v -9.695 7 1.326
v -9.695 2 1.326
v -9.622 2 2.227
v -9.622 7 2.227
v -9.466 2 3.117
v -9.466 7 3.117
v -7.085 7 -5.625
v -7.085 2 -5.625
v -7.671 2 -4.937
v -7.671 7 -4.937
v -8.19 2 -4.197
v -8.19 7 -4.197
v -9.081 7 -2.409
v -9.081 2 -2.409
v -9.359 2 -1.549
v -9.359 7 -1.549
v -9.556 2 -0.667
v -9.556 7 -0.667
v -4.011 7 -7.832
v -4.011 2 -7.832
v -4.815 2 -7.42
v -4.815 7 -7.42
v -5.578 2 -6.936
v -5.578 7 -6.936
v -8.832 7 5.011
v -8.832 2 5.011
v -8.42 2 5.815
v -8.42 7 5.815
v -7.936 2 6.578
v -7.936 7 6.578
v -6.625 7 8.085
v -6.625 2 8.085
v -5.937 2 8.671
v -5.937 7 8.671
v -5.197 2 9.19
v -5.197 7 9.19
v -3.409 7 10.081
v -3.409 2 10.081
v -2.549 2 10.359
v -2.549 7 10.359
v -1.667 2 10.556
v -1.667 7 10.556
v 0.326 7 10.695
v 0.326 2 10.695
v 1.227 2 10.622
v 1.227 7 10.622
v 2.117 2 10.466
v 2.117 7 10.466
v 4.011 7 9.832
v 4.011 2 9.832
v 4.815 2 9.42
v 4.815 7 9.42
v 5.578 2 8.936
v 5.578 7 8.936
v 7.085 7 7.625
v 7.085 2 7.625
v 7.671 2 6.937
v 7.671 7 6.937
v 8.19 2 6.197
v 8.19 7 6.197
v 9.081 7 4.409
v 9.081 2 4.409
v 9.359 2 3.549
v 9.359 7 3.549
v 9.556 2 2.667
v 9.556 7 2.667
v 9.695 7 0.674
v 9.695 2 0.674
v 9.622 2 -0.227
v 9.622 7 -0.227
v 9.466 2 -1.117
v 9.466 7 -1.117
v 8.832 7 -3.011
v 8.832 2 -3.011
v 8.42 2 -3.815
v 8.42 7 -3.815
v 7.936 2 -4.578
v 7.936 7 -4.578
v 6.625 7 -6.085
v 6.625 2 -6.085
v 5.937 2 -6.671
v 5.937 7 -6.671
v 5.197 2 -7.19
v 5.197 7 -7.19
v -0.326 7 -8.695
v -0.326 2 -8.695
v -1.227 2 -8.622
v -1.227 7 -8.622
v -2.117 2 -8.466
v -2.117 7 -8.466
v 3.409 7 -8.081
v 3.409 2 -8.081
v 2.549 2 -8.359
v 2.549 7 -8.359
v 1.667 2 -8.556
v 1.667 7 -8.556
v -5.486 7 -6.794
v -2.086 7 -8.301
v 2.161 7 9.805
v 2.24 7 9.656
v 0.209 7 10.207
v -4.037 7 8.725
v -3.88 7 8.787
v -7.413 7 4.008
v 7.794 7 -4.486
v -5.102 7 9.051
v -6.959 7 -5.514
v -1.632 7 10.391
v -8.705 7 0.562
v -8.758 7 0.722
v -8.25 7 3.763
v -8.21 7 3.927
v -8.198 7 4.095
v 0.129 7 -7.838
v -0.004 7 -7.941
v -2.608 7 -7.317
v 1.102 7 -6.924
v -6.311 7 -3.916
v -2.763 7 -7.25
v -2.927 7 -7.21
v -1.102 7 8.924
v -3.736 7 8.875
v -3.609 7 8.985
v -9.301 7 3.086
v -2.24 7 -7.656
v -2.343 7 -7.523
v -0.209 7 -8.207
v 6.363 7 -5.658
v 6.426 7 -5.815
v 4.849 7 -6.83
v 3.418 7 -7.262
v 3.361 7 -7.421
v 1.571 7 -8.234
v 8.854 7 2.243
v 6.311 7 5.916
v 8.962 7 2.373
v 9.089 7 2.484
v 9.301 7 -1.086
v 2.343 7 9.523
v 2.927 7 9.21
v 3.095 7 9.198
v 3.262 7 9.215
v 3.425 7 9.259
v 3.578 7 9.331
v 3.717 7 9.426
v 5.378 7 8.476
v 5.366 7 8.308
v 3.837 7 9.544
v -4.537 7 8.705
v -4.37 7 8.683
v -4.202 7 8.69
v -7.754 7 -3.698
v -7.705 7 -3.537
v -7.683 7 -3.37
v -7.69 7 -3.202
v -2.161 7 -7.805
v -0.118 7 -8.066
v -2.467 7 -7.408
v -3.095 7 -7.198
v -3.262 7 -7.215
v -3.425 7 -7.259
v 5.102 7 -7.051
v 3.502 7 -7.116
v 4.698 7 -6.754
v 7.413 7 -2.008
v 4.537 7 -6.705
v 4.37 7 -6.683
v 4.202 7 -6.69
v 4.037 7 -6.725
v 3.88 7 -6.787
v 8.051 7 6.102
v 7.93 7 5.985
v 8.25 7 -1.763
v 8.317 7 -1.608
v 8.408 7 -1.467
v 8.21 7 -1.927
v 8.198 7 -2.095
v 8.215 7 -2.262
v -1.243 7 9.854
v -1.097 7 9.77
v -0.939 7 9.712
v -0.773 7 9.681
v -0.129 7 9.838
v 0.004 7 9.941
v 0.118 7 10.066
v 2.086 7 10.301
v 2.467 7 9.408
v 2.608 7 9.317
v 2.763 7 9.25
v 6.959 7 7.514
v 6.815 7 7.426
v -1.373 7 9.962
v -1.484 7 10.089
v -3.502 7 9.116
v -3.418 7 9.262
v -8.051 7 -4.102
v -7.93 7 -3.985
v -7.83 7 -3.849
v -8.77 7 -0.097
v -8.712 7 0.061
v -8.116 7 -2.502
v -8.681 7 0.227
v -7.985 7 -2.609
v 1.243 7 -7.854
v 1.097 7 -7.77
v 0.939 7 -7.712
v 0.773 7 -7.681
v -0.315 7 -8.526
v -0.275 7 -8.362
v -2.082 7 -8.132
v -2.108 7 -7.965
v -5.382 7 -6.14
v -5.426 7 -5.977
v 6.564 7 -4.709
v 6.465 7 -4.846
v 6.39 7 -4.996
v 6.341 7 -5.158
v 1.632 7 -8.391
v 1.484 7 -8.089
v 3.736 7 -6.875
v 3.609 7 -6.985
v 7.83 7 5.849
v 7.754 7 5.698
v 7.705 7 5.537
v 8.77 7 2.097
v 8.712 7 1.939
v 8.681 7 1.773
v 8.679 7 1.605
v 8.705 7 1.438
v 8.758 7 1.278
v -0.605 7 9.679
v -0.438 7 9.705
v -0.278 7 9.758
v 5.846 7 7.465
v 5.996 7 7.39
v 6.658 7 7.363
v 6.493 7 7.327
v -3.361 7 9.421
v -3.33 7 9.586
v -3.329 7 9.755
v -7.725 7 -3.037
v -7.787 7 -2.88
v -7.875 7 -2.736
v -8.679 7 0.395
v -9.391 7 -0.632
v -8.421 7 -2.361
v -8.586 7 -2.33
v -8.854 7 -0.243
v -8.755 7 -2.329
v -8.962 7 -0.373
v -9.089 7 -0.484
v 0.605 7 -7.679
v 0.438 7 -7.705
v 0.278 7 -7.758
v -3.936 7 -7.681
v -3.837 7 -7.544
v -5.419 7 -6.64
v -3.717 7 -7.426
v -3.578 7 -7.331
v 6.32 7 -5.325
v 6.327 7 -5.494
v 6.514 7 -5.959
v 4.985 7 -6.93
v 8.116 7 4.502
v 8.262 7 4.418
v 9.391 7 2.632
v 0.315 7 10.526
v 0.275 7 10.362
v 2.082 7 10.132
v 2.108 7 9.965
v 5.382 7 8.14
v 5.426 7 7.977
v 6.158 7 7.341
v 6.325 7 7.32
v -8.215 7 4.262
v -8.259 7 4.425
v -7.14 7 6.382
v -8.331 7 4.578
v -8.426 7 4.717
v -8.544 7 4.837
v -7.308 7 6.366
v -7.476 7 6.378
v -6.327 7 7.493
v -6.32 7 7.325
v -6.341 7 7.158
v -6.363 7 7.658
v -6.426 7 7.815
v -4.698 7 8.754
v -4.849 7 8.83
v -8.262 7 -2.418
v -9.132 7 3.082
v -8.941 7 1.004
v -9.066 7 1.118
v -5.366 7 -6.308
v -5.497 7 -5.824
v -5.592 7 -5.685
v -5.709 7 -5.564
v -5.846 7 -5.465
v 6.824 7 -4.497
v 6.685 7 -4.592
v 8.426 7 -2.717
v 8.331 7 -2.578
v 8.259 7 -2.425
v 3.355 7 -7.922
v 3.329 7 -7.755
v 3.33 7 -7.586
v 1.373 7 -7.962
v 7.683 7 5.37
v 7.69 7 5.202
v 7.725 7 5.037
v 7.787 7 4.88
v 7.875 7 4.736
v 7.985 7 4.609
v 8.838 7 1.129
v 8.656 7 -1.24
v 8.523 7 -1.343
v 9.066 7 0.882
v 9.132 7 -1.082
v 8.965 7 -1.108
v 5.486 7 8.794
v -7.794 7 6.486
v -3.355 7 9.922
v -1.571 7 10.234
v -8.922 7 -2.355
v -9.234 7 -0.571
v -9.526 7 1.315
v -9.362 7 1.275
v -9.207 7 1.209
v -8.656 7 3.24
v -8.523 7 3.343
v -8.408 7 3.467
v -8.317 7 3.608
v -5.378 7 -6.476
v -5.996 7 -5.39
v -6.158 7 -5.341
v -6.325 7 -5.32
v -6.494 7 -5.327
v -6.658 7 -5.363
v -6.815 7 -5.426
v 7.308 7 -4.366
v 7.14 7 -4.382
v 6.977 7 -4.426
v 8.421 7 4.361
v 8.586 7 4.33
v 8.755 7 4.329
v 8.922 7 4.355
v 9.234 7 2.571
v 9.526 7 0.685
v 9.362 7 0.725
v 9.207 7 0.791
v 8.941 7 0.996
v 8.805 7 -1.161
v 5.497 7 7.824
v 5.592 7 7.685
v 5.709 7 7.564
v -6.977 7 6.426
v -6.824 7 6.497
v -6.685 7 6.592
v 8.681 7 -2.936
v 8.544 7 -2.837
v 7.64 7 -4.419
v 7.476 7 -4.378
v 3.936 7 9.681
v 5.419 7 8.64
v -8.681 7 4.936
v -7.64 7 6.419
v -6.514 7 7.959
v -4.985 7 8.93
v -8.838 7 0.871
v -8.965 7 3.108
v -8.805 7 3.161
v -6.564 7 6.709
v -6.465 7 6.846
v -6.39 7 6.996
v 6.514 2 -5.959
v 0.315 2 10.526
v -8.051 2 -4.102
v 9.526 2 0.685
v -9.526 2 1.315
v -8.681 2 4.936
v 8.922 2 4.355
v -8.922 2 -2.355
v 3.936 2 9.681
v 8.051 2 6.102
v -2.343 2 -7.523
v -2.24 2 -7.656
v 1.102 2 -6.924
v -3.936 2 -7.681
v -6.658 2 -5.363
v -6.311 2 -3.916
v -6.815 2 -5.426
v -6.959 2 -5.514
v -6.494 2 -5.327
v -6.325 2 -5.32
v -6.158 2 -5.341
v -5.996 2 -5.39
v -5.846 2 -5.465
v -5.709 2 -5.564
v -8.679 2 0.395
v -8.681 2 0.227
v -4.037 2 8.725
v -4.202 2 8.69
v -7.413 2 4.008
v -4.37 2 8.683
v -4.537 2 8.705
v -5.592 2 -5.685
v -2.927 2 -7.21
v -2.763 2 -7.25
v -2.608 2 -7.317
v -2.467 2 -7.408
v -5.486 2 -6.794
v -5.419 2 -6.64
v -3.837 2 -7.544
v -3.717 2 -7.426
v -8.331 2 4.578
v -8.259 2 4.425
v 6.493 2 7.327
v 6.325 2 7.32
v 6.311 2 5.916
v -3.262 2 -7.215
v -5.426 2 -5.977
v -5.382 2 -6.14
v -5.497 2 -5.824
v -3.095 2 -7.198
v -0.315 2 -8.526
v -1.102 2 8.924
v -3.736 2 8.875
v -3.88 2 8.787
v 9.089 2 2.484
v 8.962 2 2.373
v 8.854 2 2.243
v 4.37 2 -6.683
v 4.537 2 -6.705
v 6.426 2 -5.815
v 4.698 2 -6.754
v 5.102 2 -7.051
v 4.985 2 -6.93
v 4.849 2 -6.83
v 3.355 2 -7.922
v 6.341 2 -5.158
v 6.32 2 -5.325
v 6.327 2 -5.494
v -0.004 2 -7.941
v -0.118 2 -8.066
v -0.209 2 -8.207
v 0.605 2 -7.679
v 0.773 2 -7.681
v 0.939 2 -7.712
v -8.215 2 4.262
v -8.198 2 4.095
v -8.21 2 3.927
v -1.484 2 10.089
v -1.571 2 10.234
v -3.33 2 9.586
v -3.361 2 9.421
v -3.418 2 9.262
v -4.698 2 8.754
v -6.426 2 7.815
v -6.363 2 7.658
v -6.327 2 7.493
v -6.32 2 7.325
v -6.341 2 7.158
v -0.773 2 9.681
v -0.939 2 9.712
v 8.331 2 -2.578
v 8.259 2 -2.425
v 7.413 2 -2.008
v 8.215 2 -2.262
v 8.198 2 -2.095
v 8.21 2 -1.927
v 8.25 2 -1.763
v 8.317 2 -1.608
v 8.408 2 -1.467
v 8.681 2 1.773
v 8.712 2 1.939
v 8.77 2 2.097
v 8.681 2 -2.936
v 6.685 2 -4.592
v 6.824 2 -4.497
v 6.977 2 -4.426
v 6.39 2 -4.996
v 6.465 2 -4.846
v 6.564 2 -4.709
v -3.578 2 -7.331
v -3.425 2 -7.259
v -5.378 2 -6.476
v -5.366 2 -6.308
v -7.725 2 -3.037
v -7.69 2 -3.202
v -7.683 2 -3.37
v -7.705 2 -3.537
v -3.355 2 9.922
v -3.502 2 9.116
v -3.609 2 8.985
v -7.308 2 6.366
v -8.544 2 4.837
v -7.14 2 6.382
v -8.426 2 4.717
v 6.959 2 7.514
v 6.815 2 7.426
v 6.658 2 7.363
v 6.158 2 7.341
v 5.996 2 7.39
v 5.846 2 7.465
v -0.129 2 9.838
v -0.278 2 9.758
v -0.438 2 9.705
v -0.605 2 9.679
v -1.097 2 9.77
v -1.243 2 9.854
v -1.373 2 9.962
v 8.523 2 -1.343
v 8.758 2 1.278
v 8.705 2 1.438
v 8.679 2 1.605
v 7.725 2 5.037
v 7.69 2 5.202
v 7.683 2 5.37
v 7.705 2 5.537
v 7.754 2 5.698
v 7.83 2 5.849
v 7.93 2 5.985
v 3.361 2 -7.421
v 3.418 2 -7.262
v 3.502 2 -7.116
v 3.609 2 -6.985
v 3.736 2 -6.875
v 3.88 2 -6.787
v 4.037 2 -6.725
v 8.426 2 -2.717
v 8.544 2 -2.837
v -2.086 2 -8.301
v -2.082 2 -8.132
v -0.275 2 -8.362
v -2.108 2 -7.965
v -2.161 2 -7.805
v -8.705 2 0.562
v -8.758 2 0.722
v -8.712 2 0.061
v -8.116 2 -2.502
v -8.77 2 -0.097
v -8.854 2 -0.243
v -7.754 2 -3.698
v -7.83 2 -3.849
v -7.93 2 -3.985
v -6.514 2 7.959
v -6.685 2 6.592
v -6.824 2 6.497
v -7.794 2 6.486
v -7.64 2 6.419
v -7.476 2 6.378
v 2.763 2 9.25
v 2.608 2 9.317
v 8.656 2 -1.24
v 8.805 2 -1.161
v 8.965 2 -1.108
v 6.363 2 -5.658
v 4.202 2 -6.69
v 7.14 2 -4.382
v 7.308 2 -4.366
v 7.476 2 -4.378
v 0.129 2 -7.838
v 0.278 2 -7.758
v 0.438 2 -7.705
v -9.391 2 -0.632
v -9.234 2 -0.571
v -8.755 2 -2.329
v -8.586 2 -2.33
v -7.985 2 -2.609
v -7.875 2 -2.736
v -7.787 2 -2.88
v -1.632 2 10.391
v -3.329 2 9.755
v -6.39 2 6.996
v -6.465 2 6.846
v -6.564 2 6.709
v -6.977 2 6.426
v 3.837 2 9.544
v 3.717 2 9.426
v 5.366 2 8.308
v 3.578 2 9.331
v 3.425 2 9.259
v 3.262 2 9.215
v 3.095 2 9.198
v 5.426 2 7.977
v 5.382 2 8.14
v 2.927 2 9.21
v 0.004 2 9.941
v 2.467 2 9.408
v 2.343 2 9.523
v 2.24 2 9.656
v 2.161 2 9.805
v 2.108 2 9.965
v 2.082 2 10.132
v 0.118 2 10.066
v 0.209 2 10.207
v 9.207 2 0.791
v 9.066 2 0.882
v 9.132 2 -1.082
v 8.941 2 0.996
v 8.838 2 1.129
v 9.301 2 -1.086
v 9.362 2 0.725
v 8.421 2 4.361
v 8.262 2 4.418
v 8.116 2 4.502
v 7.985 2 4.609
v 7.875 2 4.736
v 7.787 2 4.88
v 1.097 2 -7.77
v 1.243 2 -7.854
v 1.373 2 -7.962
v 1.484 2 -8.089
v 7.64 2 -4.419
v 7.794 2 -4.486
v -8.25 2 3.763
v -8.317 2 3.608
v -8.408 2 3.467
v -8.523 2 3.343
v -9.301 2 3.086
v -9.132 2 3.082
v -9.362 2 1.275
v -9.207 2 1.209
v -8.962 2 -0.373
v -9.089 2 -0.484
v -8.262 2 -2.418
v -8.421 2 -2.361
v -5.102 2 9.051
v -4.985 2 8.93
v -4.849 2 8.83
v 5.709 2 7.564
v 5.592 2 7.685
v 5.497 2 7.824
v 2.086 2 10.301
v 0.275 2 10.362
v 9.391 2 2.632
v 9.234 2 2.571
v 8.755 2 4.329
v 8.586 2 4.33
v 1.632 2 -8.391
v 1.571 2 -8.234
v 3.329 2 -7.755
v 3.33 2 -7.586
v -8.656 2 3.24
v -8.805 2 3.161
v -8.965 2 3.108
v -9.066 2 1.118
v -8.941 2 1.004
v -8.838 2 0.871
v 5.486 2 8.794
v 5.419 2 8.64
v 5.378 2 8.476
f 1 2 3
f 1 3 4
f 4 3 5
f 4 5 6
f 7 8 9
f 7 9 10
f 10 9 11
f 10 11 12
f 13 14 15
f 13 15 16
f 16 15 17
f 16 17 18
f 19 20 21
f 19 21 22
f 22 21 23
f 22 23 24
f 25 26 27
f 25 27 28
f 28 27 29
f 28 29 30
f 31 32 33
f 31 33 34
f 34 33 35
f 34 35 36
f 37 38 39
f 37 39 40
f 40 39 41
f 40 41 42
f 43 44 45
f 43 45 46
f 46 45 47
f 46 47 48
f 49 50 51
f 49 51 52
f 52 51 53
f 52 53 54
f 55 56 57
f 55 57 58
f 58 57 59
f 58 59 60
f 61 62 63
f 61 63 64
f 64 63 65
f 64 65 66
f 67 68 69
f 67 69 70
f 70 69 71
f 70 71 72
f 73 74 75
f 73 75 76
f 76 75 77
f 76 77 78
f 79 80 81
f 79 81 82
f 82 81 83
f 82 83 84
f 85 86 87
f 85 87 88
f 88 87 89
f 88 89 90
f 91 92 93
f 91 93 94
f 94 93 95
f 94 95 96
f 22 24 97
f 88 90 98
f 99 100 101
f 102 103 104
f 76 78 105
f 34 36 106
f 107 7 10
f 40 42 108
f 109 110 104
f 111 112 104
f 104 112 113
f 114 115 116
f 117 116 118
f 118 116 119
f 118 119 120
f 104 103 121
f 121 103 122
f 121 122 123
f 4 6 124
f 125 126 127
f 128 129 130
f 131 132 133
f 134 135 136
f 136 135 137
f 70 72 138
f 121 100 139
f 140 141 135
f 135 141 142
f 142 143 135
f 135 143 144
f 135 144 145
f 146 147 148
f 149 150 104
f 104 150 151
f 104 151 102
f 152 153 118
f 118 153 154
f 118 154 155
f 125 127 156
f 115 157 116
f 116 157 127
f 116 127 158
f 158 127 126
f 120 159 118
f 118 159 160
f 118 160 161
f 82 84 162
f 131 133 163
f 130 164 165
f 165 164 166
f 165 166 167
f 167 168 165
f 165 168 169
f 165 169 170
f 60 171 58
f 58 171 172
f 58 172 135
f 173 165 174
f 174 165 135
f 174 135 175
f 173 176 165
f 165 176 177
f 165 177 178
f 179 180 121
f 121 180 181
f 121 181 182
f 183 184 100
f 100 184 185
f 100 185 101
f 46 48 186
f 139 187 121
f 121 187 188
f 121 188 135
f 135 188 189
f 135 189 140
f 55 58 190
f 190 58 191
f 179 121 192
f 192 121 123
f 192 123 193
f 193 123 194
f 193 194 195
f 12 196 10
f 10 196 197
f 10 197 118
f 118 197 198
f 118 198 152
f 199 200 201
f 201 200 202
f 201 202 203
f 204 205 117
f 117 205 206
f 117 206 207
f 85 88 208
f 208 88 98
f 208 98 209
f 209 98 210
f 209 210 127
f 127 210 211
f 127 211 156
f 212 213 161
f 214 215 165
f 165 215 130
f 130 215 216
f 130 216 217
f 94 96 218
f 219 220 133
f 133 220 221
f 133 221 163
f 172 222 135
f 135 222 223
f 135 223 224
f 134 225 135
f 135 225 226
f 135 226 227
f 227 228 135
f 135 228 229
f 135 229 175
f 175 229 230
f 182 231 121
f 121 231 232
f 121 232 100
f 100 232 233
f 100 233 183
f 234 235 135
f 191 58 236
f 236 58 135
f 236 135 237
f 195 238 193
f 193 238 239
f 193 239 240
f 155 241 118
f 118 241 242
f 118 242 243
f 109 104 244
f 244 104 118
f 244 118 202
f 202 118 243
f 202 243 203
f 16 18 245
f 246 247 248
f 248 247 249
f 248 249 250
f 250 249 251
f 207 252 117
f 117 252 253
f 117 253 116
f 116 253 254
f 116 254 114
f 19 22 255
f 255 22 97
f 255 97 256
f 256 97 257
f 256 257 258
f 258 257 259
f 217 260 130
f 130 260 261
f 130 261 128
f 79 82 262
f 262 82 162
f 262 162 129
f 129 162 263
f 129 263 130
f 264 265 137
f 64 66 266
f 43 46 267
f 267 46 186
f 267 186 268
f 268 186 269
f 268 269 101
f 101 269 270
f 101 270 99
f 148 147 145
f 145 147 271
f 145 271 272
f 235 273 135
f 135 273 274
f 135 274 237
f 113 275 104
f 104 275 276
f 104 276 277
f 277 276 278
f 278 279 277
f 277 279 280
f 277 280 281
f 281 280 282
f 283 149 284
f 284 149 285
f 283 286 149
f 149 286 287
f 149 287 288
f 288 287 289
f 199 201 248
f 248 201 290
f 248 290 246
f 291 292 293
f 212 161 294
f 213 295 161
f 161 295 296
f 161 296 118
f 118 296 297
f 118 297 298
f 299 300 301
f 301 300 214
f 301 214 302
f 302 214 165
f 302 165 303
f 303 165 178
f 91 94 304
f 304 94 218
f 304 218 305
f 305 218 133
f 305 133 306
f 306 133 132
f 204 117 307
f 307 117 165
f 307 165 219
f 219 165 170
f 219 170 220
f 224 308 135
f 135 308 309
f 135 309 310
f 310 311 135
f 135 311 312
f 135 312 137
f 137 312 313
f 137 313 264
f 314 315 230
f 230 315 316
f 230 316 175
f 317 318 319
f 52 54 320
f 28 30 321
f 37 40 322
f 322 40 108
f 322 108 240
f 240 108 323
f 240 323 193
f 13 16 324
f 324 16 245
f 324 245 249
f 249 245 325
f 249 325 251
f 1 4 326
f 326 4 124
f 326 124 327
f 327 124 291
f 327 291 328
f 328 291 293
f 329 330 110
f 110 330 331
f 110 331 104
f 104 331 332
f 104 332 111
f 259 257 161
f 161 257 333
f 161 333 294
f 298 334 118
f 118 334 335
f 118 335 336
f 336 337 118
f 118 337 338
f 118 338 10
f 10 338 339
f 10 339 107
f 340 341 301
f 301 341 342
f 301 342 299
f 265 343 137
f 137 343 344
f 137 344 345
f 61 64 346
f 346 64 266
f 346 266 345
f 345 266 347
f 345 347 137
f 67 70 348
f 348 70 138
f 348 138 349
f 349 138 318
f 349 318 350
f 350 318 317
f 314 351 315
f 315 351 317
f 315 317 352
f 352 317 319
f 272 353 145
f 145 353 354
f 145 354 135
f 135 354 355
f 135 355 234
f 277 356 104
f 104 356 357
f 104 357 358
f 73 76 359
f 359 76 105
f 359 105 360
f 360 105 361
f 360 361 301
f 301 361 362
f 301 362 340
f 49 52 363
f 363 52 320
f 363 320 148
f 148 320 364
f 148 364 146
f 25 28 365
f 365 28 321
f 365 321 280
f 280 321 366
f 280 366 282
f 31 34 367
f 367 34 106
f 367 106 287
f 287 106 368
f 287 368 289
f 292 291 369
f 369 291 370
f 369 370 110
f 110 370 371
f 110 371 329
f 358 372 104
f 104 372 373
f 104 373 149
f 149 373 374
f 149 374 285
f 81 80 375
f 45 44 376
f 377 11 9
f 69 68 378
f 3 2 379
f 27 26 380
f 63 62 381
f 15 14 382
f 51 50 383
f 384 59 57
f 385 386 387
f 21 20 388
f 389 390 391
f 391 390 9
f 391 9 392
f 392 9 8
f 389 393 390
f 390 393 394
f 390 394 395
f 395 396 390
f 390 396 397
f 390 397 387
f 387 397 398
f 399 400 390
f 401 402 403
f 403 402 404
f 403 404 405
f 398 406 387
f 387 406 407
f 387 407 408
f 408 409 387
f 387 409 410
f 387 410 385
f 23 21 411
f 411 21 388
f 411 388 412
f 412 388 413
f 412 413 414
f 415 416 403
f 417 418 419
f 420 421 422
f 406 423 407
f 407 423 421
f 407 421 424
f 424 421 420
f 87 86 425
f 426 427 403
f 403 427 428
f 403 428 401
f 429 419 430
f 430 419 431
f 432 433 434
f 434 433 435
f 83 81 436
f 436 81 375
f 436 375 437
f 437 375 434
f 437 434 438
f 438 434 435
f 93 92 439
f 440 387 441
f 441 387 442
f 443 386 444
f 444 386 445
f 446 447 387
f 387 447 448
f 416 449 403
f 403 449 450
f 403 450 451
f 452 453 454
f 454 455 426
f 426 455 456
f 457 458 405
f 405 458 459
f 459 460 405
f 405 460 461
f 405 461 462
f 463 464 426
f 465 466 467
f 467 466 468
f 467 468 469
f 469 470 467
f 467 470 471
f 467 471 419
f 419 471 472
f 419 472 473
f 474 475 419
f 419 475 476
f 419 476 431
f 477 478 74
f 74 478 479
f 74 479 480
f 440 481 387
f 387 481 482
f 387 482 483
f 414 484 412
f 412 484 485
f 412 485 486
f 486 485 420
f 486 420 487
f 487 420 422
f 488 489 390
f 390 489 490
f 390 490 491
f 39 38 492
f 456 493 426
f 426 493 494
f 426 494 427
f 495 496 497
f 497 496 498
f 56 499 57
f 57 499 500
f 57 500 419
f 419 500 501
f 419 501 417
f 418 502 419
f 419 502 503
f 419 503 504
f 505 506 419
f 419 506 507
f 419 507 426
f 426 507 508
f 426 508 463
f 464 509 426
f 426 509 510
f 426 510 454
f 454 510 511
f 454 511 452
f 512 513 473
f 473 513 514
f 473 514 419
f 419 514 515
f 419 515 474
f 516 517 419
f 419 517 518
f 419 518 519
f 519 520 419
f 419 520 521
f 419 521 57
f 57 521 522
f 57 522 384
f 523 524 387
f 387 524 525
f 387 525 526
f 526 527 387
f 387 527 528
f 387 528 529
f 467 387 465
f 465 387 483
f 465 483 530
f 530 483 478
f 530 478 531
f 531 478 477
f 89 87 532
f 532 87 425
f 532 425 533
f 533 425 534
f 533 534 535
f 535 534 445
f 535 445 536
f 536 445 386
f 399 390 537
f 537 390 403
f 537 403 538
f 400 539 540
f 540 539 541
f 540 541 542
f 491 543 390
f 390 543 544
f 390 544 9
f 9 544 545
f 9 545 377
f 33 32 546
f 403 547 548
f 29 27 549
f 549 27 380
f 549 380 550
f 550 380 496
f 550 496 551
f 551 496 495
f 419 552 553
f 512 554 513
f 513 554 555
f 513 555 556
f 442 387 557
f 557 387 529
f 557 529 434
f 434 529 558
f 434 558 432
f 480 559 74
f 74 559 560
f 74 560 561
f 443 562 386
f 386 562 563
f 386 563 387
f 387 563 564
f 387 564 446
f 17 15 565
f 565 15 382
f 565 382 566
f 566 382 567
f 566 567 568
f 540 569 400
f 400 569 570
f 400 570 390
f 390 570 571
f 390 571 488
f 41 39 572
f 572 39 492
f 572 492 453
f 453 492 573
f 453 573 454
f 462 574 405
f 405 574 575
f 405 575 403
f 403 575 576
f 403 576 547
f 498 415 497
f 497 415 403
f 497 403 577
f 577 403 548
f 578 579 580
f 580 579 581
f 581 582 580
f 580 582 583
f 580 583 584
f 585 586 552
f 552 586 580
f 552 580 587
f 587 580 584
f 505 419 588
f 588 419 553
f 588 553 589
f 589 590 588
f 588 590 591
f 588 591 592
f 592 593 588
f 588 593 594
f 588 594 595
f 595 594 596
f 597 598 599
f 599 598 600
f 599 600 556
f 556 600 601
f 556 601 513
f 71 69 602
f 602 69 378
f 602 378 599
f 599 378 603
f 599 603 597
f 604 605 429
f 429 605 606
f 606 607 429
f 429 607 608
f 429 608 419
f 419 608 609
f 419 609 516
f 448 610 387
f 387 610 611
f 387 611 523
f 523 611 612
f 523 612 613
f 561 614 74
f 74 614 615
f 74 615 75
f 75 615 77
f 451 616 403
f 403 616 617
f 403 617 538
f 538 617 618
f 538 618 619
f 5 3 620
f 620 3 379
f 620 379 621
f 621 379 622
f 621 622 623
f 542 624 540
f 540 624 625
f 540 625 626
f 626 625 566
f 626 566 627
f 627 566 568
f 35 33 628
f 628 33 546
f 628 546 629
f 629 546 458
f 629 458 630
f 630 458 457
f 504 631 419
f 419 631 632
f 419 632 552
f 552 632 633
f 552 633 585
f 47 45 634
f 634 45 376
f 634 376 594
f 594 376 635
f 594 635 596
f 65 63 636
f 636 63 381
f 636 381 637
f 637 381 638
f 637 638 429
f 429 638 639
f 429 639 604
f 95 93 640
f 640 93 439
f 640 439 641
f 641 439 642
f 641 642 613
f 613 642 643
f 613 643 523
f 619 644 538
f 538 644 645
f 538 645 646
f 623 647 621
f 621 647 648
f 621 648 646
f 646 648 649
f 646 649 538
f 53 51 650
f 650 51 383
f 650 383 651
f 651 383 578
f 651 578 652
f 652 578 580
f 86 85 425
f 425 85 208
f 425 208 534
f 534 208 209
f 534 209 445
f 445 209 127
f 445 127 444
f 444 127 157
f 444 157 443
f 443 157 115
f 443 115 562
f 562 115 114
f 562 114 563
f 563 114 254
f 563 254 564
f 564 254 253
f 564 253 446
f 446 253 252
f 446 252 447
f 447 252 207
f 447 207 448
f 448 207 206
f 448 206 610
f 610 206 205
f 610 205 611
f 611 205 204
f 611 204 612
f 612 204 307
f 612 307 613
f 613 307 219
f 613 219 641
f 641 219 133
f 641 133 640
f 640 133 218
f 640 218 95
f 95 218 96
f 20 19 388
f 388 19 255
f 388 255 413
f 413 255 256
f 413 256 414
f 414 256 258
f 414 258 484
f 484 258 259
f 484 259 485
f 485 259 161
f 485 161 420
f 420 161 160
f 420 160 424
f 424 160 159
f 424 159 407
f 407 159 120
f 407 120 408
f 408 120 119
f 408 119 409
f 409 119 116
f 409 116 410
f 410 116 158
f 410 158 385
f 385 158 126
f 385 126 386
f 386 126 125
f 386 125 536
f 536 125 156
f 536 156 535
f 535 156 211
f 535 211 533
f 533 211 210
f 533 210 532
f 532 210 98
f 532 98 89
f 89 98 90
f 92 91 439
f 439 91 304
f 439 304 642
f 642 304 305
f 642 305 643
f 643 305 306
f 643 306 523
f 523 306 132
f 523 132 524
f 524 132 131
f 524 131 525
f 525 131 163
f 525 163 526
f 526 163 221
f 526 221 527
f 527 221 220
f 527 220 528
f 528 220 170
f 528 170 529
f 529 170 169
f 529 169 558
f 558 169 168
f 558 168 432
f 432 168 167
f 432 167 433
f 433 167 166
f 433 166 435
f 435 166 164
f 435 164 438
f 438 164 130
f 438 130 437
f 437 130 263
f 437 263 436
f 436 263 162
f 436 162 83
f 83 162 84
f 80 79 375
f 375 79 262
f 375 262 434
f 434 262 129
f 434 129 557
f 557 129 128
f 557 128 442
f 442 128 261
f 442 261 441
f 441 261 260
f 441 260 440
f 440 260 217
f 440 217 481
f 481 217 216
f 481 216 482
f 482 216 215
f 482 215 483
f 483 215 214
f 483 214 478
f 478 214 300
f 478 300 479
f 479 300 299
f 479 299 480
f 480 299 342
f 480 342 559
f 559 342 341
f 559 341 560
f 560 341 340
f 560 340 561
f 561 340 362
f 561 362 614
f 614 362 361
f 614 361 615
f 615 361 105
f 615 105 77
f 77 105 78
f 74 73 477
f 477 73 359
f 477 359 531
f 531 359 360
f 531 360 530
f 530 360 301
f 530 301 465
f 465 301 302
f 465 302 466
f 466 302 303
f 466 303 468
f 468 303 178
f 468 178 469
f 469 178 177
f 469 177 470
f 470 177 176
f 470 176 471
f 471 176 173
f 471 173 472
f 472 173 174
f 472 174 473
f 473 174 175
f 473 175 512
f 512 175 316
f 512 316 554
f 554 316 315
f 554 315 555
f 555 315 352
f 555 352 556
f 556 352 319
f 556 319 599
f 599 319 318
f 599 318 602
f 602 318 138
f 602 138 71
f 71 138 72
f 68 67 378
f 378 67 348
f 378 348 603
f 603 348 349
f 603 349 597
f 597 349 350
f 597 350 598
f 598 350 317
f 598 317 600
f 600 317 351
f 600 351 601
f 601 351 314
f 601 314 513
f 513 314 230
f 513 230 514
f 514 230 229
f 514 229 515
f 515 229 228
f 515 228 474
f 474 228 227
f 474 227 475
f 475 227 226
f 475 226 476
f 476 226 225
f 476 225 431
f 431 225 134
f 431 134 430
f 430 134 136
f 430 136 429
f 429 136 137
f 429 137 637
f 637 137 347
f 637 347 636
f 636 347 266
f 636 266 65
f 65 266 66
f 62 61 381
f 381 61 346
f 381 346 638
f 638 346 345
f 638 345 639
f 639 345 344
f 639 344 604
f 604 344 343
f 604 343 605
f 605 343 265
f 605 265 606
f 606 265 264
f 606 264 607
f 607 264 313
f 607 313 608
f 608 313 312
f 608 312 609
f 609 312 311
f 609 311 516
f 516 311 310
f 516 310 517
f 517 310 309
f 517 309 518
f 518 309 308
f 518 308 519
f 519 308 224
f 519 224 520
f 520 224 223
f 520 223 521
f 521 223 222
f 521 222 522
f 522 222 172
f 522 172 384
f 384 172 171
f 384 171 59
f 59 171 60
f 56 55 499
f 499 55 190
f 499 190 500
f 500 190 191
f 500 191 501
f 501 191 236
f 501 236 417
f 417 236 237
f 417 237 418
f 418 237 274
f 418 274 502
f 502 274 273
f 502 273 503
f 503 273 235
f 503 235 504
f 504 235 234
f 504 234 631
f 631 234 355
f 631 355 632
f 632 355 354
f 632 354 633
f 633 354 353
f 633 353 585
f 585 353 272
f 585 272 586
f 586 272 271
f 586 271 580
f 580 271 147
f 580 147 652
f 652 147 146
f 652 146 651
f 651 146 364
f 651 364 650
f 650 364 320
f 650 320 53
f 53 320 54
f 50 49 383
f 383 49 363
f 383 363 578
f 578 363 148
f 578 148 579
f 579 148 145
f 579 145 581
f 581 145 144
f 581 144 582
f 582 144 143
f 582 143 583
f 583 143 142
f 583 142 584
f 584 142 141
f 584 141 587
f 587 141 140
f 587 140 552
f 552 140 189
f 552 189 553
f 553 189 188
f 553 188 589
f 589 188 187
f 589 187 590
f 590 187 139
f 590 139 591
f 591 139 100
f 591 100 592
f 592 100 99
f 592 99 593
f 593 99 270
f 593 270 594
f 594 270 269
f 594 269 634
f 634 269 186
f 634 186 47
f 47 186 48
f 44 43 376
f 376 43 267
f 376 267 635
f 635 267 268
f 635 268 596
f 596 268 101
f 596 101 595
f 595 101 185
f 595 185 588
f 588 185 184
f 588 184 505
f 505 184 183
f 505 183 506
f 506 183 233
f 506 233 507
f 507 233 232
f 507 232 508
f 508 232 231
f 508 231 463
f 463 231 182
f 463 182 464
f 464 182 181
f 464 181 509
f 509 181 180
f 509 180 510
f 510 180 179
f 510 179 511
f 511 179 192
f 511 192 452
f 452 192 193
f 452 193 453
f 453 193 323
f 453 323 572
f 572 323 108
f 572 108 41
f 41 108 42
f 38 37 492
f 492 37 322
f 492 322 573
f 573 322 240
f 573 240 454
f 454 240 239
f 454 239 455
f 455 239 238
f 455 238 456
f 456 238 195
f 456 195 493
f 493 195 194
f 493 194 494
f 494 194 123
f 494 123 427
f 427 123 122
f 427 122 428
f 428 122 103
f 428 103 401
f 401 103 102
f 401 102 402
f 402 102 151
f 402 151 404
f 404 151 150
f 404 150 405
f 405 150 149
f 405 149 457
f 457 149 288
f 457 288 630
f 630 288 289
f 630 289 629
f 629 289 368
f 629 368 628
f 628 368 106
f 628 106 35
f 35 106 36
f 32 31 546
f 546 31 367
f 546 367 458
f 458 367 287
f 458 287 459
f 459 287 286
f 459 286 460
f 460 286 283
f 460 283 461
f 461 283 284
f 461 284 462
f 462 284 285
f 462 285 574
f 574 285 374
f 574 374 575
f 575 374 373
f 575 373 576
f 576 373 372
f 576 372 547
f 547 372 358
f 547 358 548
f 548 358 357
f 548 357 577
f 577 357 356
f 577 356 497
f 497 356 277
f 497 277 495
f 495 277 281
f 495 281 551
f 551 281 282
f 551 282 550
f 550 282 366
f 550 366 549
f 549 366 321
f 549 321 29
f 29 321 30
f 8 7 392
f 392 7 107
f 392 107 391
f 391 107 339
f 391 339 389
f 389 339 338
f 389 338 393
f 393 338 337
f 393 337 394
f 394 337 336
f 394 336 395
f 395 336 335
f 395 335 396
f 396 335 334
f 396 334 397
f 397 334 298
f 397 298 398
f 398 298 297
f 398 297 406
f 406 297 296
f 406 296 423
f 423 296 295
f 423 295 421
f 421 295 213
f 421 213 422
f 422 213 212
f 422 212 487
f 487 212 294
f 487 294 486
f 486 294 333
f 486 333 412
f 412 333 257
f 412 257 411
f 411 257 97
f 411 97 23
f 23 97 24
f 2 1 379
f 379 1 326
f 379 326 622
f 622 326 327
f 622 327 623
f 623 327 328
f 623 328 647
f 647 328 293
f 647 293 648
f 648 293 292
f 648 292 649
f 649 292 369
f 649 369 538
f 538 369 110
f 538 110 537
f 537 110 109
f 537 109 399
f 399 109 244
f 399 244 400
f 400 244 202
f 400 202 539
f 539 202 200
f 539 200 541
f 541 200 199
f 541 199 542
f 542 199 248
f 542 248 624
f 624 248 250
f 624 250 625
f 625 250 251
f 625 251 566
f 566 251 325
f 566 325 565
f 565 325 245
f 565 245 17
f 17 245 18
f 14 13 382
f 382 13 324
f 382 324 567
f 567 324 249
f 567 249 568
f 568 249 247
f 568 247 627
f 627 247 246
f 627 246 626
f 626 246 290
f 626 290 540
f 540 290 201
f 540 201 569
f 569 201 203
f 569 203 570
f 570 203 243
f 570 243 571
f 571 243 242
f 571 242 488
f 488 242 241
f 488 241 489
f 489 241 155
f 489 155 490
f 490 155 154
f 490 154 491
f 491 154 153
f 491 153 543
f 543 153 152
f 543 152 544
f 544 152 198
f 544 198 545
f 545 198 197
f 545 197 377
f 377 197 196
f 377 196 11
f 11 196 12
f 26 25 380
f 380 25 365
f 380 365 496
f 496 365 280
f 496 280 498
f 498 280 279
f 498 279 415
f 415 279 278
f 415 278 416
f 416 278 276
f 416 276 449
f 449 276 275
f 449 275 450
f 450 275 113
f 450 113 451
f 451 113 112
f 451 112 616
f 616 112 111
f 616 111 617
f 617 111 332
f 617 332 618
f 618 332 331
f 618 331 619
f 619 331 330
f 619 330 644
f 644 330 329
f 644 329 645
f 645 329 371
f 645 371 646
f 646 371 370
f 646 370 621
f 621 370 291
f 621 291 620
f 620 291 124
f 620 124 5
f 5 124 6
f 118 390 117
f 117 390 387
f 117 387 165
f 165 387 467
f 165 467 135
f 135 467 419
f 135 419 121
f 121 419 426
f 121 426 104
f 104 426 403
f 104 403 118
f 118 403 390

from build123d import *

# Parameters (mm, degrees)
SKETCH1_W             = 20
SKETCH1_H             = 20
SKETCH1_R             = 4
SKETCH1_H_2           = 10
BOSS_EXTRUDE2_DEPTH   = 2
SKETCH2_W             = 45
SKETCH2_H             = 60
SKETCH2_W_2           = 43
SKETCH2_H_2           = 58
BOSS_EXTRUDE3_DEPTH   = 4
SKETCH6_W             = 45
SKETCH6_H             = 30
BOSS_EXTRUDE4_DEPTH   = 2
CUT_EXTRUDE4_DEPTH    = 4
BOSS_EXTRUDE5_DEPTH   = 7
BOSS_EXTRUDE5_2_DEPTH = 7
BOSS_EXTRUDE5_3_DEPTH = 7
SKETCH14_R            = 4
CUT_EXTRUDE7_DEPTH    = 19
SKETCH20_R            = 9.7
BOSS_EXTRUDE6_DEPTH   = 5
CUT_EXTRUDE8_DEPTH    = 15
CUT_EXTRUDE9_DEPTH    = 15
CUT_EXTRUDE10_DEPTH   = 31
SKETCH24_W            = 45
SKETCH24_H            = 30
CUT_EXTRUDE11_DEPTH   = 31
SKETCH25_W            = 45
SKETCH25_H            = 60
CUT_EXTRUDE12_DEPTH   = 31
SKETCH26_R            = 1
CUT_EXTRUDE14_DEPTH   = 31
SKETCH28_R            = 8.330942509
BOSS_EXTRUDE7_DEPTH   = 5
CUT_EXTRUDE15_DEPTH   = 10


with BuildPart() as part:
    # Sketch1 → Boss-Extrude2 (new body)
    # profile 1 of 6: a face of its own
    with BuildSketch(Plane(origin=(0, 0, 0), x_dir=(1, 0, 0), z_dir=(0, 1, 0))):
        Polygon((-22.5, 10), (-10, 10), (10, 10), (22.5, 10), (22.5, 70), (-22.5, 70), align=None)
    # profile 2 of 6: a face of its own
    with BuildSketch(Plane(origin=(0, 0, 0), x_dir=(1, 0, 0), z_dir=(0, 1, 0))):
        Polygon((-22.5, 10), (-10, -10), (-10, 10), align=None)
    # profile 3 of 6: a face of its own
    with BuildSketch(Plane(origin=(0, 0, 0), x_dir=(1, 0, 0), z_dir=(0, 1, 0))):
        Polygon((10, 10), (10, -10), (22.5, 10), align=None)
    # profile 4 of 6: a face of its own
    with BuildSketch(Plane(origin=(0, 0, 0), x_dir=(1, 0, 0), z_dir=(0, 1, 0))):
        Rectangle(SKETCH1_W, SKETCH1_H)
        Circle(SKETCH1_R, mode=Mode.SUBTRACT)
    # profile 5 of 6: a face of its own
    with BuildSketch(Plane(origin=(0, 0, 0), x_dir=(1, 0, 0), z_dir=(0, 1, 0))):
        Circle(SKETCH1_R)
    # profile 6 of 6: a face of its own
    with BuildSketch(Plane(origin=(0, 0, 0), x_dir=(1, 0, 0), z_dir=(0, 1, 0))):
        with Locations((0, -15)):
            Rectangle(SKETCH1_W, SKETCH1_H_2)
    extrude(amount=BOSS_EXTRUDE2_DEPTH)

    # Sketch2 → Boss-Extrude3 (add)
    with BuildSketch(Plane(origin=(0, 2, 0), x_dir=(1, 0, 0), z_dir=(0, 1, 0))):
        with Locations((0, 40)):
            Rectangle(SKETCH2_W, SKETCH2_H)
        with Locations((0, 40)):
            Rectangle(SKETCH2_W_2, SKETCH2_H_2, mode=Mode.SUBTRACT)
    extrude(amount=BOSS_EXTRUDE3_DEPTH)

    # Sketch6 → Boss-Extrude4 (add)
    with BuildSketch(Plane(origin=(0, 2, 0), x_dir=(1, 0, 0), z_dir=(0, 1, 0))):
        with Locations((0, -5)):
            Rectangle(SKETCH6_W, SKETCH6_H)
    extrude(amount=-BOSS_EXTRUDE4_DEPTH)

    # Sketch7 → Cut-Extrude4 (cut)
    with BuildSketch(Plane(origin=(0, 2, 0), x_dir=(1, 0, 0), z_dir=(0, 1, 0))):
        with BuildLine():
            Line((9.5, 9.5), (-9.5, 9.5))
            Line((-9.5, 9.5), (-9.5, 2.122498999))
            ThreePointArc((-9.5, 2.122498999), (0, 9), (9.5, 2.122498999))
            Line((9.5, 2.122498999), (9.5, 9.5))
        make_face()
        with BuildLine():
            ThreePointArc((-5.267826876, -9.5), (-7.858215886, -7.184532568), (-9.5, -4.122498999))
            Line((-9.5, -4.122498999), (-9.5, -9.5))
            Line((-9.5, -9.5), (-5.267826876, -9.5))
        make_face()
        with BuildLine():
            Line((9.5, -9.5), (9.5, -4.122498999))
            ThreePointArc((9.5, -4.122498999), (7.858215886, -7.184532568), (5.267826876, -9.5))
            Line((5.267826876, -9.5), (9.5, -9.5))
        make_face()
    extrude(amount=-CUT_EXTRUDE4_DEPTH, mode=Mode.SUBTRACT)

    # Sketch14 → Cut-Extrude7 (cut)
    with BuildSketch(Plane.XZ):
        with Locations(Location((0, 1, 0), (0, 0, 270))):
            Circle(SKETCH14_R)
    extrude(amount=-CUT_EXTRUDE7_DEPTH, mode=Mode.SUBTRACT)

    # Sketch20 → Boss-Extrude6 (add)
    with BuildSketch(Plane(origin=(0, 2, 0), x_dir=(1, 0, 0), z_dir=(0, 1, 0))):
        with Locations(Location((0, -1, 0), (0, 0, 270))):
            Circle(SKETCH20_R)
        Polygon((7.160405698, -4.567714988), (7.585926887, 1.540415964), (3.567714988, 6.160405698), (-2.540415964, 6.585926887), (-7.160405698, 2.567714988), (-7.585926887, -3.540415964), (-3.567714988, -8.160405698), (2.540415964, -8.585926887), align=None, mode=Mode.SUBTRACT)
    extrude(amount=BOSS_EXTRUDE6_DEPTH)

    # Sketch24 → Cut-Extrude11 (cut)
    with BuildSketch(Plane(origin=(0, 2, 0), x_dir=(1, 0, 0), z_dir=(0, 1, 0))):
        with Locations((0, -5)):
            Rectangle(SKETCH24_W, SKETCH24_H)
    extrude(amount=-CUT_EXTRUDE11_DEPTH, mode=Mode.SUBTRACT)


with BuildPart() as body_2:
    # Sketch8 → Boss-Extrude5 (new body)
    with BuildSketch(Plane(origin=(0, 2, 0), x_dir=(1, 0, 0), z_dir=(0, 1, 0))):
        with BuildLine():
            Line((9.5, 2.122498999), (9.5, 9.5))
            Line((9.5, 9.5), (-9.5, 9.5))
            Line((-9.5, 9.5), (-9.5, 2.122498999))
            ThreePointArc((-9.5, 2.122498999), (0, 9), (9.5, 2.122498999))
        make_face()
    extrude(amount=BOSS_EXTRUDE5_DEPTH)

    # Sketch21 → Cut-Extrude8 (cut)
    with BuildSketch(Plane(origin=(0, 9, 0), x_dir=(1, 0, 0), z_dir=(0, 1, 0))):
        with BuildLine():
            Line((-9.5, 9.5), (-9.5, 2.122498999))
            ThreePointArc((-9.5, 2.122498999), (0, 9), (9.5, 2.122498999))
            Line((9.5, 2.122498999), (9.5, 9.5))
            Line((9.5, 9.5), (-9.5, 9.5))
        make_face()
    extrude(amount=-CUT_EXTRUDE8_DEPTH, mode=Mode.SUBTRACT)


with BuildPart() as body_3:
    # Sketch8 → Boss-Extrude5 2 (new body)
    with BuildSketch(Plane(origin=(0, 2, 0), x_dir=(1, 0, 0), z_dir=(0, 1, 0))):
        with BuildLine():
            Line((-9.5, -9.5), (-5.267826876, -9.5))
            ThreePointArc((-5.267826876, -9.5), (-7.858215886, -7.184532568), (-9.5, -4.122498999))
            Line((-9.5, -4.122498999), (-9.5, -9.5))
        make_face()
    extrude(amount=BOSS_EXTRUDE5_2_DEPTH)

    # Sketch22 → Cut-Extrude9 (cut)
    with BuildSketch(Plane(origin=(0, 9, 0), x_dir=(1, 0, 0), z_dir=(0, 1, 0))):
        with BuildLine():
            Line((-9.5, -4.122498999), (-9.5, -9.5))
            Line((-9.5, -9.5), (-5.267826876, -9.5))
            ThreePointArc((-5.267826876, -9.5), (-7.858215886, -7.184532568), (-9.5, -4.122498999))
        make_face()
    extrude(amount=-CUT_EXTRUDE9_DEPTH, mode=Mode.SUBTRACT)


with BuildPart() as body_4:
    # Sketch8 → Boss-Extrude5 3 (new body)
    with BuildSketch(Plane(origin=(0, 2, 0), x_dir=(1, 0, 0), z_dir=(0, 1, 0))):
        with BuildLine():
            Line((9.5, -9.5), (9.5, -4.122498999))
            ThreePointArc((9.5, -4.122498999), (7.858215886, -7.184532568), (5.267826876, -9.5))
            Line((5.267826876, -9.5), (9.5, -9.5))
        make_face()
    extrude(amount=BOSS_EXTRUDE5_3_DEPTH)

    # Sketch23 → Cut-Extrude10 (cut)
    with BuildSketch(Plane(origin=(0, 9, 0), x_dir=(1, 0, 0), z_dir=(0, 1, 0))):
        with BuildLine():
            Line((5.267826876, -9.5), (9.5, -9.5))
            Line((9.5, -9.5), (9.5, -4.122498999))
            ThreePointArc((9.5, -4.122498999), (7.858215886, -7.184532568), (5.267826876, -9.5))
        make_face()
    extrude(amount=-CUT_EXTRUDE10_DEPTH, mode=Mode.SUBTRACT)


with BuildPart() as cut_extrude11_piece_1:
    # of the separate pieces the step leaves, piece 1, a body of its own (cut_extrude11_pieces)
    add(part.part.solids().sort_by_distance((-22.5, 0, -10))[0])

    # Sketch25 → Cut-Extrude12 (cut)
    with BuildSketch(Plane(origin=(0, 6, 0), x_dir=(1, 0, 0), z_dir=(0, 1, 0))):
        with Locations((0, 40)):
            Rectangle(SKETCH25_W, SKETCH25_H)
    extrude(amount=-CUT_EXTRUDE12_DEPTH, mode=Mode.SUBTRACT)


with BuildPart() as cut_extrude11_piece_2:
    # of the separate pieces the step leaves, piece 2, a body of its own (cut_extrude11_pieces)
    add(part.part.solids().sort_by_distance((0, 2, 10.7))[0])

    # Sketch26 → Cut-Extrude14 (cut)
    with BuildSketch(Plane(origin=(0, 7, 0), x_dir=(1, 0, 0), z_dir=(0, 1, 0))):
        with Locations((0.674113898, 8.676547445)):
            Circle(SKETCH26_R)
        with Locations((-6.365681808, 6.319022826)):
            Circle(SKETCH26_R)
        with Locations((-9.676547445, -0.325886102)):
            Circle(SKETCH26_R)
        with Locations((-8.681991909, 3.325854423)):
            Circle(SKETCH26_R)
        with Locations((-9.19793635, -4.080254356)):
            Circle(SKETCH26_R)
        with Locations((-7.319022826, -7.365681808)):
            Circle(SKETCH26_R)
        with Locations((-4.325854423, -9.681991909)):
            Circle(SKETCH26_R)
        with Locations((-0.674113898, -10.676547445)):
            Circle(SKETCH26_R)
        with Locations((3.080254356, -10.19793635)):
            Circle(SKETCH26_R)
        with Locations((6.365681808, -8.319022826)):
            Circle(SKETCH26_R)
        with Locations((8.681991909, -5.325854423)):
            Circle(SKETCH26_R)
        with Locations((9.676547445, -1.674113898)):
            Circle(SKETCH26_R)
        with Locations((9.19793635, 2.080254356)):
            Circle(SKETCH26_R)
        with Locations((7.319022826, 5.365681808)):
            Circle(SKETCH26_R)
        with Locations((4.325854423, 7.681991909)):
            Circle(SKETCH26_R)
        with Locations((-3.080254356, 8.19793635)):
            Circle(SKETCH26_R)
    extrude(amount=-CUT_EXTRUDE14_DEPTH, mode=Mode.SUBTRACT)

    # Sketch28 → Boss-Extrude7 (add)
    with BuildSketch(Plane(origin=(0, 7, 0), x_dir=(1, 0, 0), z_dir=(0, 1, 0))):
        with Locations((0, -1)):
            Circle(SKETCH28_R)
    extrude(amount=-BOSS_EXTRUDE7_DEPTH)

    # Sketch29 → Cut-Extrude15 (cut)
    with BuildSketch(Plane(origin=(0, 7, 0), x_dir=(1, 0, 0), z_dir=(0, 1, 0))):
        Polygon((-6.311211771, 3.916157644), (-7.413123294, -4.0075909), (-1.101911524, -8.923748544), (6.311211771, -5.916157644), (7.413123294, 2.0075909), (1.101911524, 6.923748544), align=None)
    extrude(amount=-CUT_EXTRUDE15_DEPTH, mode=Mode.SUBTRACT)


solid = cut_extrude11_piece_2.part
